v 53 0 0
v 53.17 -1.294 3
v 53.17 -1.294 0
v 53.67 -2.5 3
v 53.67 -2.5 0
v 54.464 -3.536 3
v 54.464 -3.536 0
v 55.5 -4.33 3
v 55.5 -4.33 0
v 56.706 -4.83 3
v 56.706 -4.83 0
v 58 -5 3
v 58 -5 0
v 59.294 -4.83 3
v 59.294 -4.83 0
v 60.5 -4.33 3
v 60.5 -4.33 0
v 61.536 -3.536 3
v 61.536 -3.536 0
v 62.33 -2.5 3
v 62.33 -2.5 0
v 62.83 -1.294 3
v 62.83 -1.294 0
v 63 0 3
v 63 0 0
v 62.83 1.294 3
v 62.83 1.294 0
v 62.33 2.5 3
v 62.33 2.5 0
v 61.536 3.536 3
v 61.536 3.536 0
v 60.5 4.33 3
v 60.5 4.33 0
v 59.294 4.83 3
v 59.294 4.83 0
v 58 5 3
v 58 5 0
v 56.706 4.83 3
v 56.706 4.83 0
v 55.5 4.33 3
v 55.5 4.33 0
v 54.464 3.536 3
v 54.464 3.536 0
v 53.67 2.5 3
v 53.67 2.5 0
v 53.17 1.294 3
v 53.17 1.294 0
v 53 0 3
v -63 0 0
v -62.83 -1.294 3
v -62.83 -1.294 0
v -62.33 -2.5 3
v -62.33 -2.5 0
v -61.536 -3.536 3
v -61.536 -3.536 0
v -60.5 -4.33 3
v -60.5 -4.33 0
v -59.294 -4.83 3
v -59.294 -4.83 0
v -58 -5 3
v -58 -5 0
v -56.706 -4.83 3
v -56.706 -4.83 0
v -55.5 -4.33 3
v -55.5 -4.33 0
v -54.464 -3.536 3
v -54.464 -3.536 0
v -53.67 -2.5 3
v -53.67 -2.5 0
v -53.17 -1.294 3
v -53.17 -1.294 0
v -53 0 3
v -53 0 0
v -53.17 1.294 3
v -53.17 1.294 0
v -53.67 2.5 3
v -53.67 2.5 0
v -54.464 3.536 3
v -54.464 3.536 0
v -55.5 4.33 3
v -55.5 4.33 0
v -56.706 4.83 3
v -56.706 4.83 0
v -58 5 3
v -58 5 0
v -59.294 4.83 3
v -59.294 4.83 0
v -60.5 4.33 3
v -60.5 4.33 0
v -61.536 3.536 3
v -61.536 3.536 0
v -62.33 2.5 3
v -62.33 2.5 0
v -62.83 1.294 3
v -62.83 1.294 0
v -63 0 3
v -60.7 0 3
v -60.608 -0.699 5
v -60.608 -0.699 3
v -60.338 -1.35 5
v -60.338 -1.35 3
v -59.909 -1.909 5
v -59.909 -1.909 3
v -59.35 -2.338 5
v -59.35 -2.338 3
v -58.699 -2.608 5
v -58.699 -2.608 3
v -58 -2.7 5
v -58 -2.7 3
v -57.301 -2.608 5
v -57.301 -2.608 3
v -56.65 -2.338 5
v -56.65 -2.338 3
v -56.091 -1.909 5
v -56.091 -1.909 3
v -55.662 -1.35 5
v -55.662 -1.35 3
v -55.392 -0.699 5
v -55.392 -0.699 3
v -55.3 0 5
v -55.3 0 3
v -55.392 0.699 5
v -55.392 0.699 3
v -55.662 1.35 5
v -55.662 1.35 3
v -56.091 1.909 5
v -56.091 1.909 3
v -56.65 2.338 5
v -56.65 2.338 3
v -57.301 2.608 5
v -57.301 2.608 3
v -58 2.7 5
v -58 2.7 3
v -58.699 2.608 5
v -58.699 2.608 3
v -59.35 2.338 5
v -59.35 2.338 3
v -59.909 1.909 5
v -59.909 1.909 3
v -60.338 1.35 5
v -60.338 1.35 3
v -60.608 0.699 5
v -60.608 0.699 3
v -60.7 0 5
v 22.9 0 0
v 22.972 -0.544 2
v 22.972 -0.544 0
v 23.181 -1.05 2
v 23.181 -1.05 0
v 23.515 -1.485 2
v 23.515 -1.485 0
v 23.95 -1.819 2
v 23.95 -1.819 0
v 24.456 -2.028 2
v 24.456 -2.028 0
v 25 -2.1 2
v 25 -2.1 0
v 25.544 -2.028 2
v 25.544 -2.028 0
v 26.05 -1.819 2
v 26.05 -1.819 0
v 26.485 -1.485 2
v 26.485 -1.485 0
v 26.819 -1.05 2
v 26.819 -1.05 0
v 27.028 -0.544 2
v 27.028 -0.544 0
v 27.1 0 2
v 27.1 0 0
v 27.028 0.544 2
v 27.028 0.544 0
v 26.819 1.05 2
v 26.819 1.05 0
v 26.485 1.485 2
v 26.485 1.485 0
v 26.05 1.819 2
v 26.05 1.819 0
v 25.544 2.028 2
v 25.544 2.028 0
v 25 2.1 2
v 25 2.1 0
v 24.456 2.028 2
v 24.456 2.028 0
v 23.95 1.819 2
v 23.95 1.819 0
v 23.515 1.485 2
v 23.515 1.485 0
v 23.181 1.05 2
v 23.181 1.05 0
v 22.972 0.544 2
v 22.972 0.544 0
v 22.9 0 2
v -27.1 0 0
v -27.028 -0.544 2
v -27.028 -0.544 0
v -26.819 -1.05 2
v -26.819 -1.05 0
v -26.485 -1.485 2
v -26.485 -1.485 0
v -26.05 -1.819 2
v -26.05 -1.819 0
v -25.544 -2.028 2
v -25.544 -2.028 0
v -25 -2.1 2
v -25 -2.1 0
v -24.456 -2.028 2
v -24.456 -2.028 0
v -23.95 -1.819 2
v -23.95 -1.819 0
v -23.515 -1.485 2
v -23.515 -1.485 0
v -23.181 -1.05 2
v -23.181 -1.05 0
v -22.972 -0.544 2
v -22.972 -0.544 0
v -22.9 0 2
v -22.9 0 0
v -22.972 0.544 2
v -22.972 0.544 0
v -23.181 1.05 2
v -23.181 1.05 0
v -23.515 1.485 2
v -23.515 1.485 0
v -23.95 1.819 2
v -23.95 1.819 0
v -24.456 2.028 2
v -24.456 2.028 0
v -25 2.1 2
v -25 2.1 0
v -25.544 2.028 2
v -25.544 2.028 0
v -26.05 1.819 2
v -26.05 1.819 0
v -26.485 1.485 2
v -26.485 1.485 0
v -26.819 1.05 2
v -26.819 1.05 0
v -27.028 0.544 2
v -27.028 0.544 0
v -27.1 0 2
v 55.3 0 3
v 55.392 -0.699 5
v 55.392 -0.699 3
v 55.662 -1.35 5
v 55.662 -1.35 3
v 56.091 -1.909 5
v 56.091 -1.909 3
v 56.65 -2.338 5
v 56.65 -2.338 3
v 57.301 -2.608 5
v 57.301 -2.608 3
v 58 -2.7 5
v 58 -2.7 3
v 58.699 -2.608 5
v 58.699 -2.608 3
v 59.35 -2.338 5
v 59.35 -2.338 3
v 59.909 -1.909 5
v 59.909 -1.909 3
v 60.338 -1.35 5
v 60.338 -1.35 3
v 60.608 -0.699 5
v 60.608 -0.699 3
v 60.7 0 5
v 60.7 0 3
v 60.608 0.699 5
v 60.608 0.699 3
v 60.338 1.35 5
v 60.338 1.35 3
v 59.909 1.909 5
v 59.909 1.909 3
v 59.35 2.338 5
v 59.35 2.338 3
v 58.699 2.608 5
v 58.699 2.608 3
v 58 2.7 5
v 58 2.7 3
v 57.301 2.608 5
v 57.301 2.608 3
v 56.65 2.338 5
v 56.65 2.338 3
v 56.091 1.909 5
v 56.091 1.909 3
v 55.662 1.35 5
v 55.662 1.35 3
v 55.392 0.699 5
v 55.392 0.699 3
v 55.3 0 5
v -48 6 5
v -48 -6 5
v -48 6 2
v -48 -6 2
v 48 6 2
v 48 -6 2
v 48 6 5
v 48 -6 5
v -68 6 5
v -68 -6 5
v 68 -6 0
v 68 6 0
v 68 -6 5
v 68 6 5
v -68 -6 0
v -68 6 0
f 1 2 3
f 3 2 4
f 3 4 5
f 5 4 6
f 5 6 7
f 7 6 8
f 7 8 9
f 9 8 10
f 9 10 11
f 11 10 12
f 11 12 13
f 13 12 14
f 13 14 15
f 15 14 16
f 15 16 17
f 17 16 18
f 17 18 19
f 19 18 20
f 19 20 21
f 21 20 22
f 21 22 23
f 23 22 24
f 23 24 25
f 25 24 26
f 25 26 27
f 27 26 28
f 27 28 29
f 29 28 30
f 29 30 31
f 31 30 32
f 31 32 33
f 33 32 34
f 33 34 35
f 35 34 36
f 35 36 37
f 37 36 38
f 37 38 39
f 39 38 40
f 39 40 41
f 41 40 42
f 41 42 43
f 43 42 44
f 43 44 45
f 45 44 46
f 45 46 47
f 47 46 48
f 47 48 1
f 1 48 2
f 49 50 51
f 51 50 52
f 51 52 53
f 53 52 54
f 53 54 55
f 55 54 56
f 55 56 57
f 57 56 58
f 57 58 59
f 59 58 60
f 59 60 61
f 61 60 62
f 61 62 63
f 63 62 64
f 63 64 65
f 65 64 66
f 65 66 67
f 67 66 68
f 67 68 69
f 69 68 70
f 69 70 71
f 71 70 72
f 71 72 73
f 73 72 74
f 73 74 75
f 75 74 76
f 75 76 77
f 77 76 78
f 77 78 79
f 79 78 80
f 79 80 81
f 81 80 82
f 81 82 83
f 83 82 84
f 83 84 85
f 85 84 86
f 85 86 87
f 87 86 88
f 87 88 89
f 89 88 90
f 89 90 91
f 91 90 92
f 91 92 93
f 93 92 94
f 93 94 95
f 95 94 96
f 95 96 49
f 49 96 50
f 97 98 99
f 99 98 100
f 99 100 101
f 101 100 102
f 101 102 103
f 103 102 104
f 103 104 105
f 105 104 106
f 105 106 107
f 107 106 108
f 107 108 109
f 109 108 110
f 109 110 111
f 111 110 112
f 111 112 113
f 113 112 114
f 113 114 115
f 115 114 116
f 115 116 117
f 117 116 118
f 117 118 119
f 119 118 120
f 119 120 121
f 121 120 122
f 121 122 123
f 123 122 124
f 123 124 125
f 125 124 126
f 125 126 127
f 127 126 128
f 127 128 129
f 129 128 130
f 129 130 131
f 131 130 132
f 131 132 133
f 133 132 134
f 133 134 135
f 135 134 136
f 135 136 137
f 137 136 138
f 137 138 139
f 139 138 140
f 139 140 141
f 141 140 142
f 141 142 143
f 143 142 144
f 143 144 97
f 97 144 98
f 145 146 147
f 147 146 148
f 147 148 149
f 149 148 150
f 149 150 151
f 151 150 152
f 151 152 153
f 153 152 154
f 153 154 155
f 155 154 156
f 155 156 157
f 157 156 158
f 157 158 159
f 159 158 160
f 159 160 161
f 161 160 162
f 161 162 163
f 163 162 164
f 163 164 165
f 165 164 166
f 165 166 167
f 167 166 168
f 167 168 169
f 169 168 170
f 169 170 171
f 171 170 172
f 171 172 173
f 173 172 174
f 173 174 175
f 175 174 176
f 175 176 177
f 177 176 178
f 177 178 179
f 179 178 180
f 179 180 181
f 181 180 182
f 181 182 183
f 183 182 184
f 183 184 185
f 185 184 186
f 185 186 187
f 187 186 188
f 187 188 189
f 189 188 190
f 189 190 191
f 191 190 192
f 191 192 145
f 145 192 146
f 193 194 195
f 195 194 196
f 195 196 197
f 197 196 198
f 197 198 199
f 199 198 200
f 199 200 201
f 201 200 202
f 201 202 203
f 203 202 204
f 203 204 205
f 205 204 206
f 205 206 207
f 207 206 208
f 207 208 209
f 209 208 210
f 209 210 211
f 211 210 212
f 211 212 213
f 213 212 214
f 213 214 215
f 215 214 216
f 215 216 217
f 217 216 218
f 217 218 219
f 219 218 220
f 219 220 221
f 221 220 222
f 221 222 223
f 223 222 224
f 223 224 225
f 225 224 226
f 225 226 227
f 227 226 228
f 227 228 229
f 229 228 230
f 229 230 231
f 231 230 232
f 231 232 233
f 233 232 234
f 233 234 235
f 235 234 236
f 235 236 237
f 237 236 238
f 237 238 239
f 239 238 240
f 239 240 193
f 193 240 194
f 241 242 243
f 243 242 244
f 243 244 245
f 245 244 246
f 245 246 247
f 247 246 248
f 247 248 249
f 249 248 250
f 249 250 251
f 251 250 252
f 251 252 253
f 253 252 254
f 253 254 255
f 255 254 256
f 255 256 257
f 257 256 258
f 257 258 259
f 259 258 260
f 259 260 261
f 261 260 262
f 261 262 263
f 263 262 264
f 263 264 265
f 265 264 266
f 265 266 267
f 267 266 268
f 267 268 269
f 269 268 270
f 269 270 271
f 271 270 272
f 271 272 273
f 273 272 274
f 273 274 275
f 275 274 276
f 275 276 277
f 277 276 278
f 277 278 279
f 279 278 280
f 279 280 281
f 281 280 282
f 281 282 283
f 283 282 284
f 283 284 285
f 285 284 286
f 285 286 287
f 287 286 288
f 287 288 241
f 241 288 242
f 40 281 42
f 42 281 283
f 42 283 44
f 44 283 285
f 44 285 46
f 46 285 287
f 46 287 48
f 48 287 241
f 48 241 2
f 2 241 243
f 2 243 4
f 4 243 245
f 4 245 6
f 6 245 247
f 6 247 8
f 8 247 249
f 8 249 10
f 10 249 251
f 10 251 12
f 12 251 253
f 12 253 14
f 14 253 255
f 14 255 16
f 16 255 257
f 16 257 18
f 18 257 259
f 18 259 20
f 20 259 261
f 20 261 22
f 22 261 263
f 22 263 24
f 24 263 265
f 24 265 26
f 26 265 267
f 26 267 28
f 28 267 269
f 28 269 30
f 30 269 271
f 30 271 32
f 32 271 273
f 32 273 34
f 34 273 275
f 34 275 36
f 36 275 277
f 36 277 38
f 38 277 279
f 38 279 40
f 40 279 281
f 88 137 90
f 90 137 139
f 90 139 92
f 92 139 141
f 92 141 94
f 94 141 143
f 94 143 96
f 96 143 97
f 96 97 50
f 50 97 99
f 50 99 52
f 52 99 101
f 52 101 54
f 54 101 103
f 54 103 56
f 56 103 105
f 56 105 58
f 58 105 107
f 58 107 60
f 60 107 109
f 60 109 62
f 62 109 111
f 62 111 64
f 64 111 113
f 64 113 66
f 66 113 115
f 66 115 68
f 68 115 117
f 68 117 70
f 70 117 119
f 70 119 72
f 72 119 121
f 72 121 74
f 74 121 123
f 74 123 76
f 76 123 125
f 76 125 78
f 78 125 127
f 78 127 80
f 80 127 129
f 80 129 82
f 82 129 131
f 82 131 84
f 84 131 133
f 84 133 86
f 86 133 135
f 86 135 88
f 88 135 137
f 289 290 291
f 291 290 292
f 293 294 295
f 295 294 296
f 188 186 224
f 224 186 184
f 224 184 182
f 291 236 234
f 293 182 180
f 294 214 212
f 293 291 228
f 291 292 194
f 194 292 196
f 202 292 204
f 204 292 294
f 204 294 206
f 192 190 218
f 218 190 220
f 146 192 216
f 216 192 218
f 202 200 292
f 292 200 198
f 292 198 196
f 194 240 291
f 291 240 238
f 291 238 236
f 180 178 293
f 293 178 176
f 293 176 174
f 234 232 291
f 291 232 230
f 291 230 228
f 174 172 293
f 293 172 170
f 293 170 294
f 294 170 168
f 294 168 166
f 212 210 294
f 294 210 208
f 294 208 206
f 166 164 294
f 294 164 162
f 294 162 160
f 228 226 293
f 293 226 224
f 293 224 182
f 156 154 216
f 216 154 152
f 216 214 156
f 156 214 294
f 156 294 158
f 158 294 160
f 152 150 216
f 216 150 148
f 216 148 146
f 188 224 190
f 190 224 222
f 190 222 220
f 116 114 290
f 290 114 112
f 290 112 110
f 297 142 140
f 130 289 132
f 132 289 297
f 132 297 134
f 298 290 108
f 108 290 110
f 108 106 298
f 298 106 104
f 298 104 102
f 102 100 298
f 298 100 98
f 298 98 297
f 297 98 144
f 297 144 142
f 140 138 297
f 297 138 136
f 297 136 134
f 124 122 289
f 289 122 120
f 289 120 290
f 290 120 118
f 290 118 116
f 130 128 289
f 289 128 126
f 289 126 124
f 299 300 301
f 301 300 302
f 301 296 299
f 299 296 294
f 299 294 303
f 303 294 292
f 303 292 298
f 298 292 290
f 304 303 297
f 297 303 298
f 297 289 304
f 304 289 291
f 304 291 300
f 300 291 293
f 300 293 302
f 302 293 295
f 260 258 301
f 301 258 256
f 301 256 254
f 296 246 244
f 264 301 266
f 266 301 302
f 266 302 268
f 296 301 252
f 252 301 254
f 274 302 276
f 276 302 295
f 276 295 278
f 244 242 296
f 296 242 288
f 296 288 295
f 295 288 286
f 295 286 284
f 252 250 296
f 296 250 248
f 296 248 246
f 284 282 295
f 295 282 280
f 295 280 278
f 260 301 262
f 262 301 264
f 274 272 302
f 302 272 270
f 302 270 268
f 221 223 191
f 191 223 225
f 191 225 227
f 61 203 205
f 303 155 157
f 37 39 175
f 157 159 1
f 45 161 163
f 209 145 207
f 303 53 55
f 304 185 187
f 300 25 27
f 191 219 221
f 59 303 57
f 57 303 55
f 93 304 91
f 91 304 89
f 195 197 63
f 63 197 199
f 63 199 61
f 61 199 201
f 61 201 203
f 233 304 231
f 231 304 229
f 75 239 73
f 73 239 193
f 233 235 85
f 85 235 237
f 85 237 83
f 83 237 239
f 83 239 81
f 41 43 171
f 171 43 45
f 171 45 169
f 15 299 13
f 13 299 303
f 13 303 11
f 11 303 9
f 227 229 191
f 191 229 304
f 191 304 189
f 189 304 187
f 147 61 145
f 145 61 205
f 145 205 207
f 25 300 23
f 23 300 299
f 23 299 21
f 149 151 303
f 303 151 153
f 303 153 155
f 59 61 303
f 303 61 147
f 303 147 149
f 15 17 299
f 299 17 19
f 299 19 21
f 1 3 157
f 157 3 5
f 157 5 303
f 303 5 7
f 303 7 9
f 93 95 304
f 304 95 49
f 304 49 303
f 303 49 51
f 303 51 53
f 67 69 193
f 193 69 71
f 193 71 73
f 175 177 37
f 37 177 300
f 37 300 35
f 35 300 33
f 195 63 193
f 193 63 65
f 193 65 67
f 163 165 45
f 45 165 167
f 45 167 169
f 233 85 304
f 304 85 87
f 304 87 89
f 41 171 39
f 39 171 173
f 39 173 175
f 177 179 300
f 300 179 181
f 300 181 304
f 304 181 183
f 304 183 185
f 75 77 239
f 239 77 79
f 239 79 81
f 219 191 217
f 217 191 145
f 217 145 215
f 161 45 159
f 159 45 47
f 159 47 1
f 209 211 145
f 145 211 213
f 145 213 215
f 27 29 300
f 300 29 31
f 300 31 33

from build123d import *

# Parameters (mm, degrees)
SKETCH1_W           = 136
SKETCH1_H           = 12
SKETCH1_R           = 2.1
SKETCH1_R_2         = 5
SKETCH1_R_3         = 2.7
BOSS_EXTRUDE1_DEPTH = 5
SKETCH2_W           = 96
SKETCH2_H           = 3
CUT_EXTRUDE1_DEPTH  = 12
SKETCH1_3_R         = 5
CUT_EXTRUDE2_DEPTH  = 3


with BuildPart() as part:
    # Sketch1 → Boss-Extrude1 (new body)
    with BuildSketch(Plane.XY):
        Rectangle(SKETCH1_W, SKETCH1_H)
        with Locations((25, 0)):
            Circle(SKETCH1_R, mode=Mode.SUBTRACT)
        with Locations((-58, 0)):
            Circle(SKETCH1_R_2, mode=Mode.SUBTRACT)
        with Locations((-25, 0)):
            Circle(SKETCH1_R, mode=Mode.SUBTRACT)
        with Locations((58, 0)):
            Circle(SKETCH1_R_2, mode=Mode.SUBTRACT)
        with Locations((-58, 0)):
            Circle(SKETCH1_R_2)
        with Locations((-58, 0)):
            Circle(SKETCH1_R_3, mode=Mode.SUBTRACT)
        with Locations((58, 0)):
            Circle(SKETCH1_R_2)
        with Locations((58, 0)):
            Circle(SKETCH1_R_3, mode=Mode.SUBTRACT)
    extrude(amount=BOSS_EXTRUDE1_DEPTH)

    # Sketch2 → Cut-Extrude1 (cut)
    with BuildSketch(Plane.XZ.offset(6)):
        with Locations((0, 3.5)):
            Rectangle(SKETCH2_W, SKETCH2_H)
    extrude(amount=-CUT_EXTRUDE1_DEPTH, mode=Mode.SUBTRACT)

    # Sketch1<3> → Cut-Extrude2 (cut)
    with BuildSketch(Plane.XY):
        with Locations((-58, 0)):
            Circle(SKETCH1_3_R)
        with Locations((58, 0)):
            Circle(SKETCH1_3_R)
    extrude(amount=CUT_EXTRUDE2_DEPTH, mode=Mode.SUBTRACT)


solid = part.part
